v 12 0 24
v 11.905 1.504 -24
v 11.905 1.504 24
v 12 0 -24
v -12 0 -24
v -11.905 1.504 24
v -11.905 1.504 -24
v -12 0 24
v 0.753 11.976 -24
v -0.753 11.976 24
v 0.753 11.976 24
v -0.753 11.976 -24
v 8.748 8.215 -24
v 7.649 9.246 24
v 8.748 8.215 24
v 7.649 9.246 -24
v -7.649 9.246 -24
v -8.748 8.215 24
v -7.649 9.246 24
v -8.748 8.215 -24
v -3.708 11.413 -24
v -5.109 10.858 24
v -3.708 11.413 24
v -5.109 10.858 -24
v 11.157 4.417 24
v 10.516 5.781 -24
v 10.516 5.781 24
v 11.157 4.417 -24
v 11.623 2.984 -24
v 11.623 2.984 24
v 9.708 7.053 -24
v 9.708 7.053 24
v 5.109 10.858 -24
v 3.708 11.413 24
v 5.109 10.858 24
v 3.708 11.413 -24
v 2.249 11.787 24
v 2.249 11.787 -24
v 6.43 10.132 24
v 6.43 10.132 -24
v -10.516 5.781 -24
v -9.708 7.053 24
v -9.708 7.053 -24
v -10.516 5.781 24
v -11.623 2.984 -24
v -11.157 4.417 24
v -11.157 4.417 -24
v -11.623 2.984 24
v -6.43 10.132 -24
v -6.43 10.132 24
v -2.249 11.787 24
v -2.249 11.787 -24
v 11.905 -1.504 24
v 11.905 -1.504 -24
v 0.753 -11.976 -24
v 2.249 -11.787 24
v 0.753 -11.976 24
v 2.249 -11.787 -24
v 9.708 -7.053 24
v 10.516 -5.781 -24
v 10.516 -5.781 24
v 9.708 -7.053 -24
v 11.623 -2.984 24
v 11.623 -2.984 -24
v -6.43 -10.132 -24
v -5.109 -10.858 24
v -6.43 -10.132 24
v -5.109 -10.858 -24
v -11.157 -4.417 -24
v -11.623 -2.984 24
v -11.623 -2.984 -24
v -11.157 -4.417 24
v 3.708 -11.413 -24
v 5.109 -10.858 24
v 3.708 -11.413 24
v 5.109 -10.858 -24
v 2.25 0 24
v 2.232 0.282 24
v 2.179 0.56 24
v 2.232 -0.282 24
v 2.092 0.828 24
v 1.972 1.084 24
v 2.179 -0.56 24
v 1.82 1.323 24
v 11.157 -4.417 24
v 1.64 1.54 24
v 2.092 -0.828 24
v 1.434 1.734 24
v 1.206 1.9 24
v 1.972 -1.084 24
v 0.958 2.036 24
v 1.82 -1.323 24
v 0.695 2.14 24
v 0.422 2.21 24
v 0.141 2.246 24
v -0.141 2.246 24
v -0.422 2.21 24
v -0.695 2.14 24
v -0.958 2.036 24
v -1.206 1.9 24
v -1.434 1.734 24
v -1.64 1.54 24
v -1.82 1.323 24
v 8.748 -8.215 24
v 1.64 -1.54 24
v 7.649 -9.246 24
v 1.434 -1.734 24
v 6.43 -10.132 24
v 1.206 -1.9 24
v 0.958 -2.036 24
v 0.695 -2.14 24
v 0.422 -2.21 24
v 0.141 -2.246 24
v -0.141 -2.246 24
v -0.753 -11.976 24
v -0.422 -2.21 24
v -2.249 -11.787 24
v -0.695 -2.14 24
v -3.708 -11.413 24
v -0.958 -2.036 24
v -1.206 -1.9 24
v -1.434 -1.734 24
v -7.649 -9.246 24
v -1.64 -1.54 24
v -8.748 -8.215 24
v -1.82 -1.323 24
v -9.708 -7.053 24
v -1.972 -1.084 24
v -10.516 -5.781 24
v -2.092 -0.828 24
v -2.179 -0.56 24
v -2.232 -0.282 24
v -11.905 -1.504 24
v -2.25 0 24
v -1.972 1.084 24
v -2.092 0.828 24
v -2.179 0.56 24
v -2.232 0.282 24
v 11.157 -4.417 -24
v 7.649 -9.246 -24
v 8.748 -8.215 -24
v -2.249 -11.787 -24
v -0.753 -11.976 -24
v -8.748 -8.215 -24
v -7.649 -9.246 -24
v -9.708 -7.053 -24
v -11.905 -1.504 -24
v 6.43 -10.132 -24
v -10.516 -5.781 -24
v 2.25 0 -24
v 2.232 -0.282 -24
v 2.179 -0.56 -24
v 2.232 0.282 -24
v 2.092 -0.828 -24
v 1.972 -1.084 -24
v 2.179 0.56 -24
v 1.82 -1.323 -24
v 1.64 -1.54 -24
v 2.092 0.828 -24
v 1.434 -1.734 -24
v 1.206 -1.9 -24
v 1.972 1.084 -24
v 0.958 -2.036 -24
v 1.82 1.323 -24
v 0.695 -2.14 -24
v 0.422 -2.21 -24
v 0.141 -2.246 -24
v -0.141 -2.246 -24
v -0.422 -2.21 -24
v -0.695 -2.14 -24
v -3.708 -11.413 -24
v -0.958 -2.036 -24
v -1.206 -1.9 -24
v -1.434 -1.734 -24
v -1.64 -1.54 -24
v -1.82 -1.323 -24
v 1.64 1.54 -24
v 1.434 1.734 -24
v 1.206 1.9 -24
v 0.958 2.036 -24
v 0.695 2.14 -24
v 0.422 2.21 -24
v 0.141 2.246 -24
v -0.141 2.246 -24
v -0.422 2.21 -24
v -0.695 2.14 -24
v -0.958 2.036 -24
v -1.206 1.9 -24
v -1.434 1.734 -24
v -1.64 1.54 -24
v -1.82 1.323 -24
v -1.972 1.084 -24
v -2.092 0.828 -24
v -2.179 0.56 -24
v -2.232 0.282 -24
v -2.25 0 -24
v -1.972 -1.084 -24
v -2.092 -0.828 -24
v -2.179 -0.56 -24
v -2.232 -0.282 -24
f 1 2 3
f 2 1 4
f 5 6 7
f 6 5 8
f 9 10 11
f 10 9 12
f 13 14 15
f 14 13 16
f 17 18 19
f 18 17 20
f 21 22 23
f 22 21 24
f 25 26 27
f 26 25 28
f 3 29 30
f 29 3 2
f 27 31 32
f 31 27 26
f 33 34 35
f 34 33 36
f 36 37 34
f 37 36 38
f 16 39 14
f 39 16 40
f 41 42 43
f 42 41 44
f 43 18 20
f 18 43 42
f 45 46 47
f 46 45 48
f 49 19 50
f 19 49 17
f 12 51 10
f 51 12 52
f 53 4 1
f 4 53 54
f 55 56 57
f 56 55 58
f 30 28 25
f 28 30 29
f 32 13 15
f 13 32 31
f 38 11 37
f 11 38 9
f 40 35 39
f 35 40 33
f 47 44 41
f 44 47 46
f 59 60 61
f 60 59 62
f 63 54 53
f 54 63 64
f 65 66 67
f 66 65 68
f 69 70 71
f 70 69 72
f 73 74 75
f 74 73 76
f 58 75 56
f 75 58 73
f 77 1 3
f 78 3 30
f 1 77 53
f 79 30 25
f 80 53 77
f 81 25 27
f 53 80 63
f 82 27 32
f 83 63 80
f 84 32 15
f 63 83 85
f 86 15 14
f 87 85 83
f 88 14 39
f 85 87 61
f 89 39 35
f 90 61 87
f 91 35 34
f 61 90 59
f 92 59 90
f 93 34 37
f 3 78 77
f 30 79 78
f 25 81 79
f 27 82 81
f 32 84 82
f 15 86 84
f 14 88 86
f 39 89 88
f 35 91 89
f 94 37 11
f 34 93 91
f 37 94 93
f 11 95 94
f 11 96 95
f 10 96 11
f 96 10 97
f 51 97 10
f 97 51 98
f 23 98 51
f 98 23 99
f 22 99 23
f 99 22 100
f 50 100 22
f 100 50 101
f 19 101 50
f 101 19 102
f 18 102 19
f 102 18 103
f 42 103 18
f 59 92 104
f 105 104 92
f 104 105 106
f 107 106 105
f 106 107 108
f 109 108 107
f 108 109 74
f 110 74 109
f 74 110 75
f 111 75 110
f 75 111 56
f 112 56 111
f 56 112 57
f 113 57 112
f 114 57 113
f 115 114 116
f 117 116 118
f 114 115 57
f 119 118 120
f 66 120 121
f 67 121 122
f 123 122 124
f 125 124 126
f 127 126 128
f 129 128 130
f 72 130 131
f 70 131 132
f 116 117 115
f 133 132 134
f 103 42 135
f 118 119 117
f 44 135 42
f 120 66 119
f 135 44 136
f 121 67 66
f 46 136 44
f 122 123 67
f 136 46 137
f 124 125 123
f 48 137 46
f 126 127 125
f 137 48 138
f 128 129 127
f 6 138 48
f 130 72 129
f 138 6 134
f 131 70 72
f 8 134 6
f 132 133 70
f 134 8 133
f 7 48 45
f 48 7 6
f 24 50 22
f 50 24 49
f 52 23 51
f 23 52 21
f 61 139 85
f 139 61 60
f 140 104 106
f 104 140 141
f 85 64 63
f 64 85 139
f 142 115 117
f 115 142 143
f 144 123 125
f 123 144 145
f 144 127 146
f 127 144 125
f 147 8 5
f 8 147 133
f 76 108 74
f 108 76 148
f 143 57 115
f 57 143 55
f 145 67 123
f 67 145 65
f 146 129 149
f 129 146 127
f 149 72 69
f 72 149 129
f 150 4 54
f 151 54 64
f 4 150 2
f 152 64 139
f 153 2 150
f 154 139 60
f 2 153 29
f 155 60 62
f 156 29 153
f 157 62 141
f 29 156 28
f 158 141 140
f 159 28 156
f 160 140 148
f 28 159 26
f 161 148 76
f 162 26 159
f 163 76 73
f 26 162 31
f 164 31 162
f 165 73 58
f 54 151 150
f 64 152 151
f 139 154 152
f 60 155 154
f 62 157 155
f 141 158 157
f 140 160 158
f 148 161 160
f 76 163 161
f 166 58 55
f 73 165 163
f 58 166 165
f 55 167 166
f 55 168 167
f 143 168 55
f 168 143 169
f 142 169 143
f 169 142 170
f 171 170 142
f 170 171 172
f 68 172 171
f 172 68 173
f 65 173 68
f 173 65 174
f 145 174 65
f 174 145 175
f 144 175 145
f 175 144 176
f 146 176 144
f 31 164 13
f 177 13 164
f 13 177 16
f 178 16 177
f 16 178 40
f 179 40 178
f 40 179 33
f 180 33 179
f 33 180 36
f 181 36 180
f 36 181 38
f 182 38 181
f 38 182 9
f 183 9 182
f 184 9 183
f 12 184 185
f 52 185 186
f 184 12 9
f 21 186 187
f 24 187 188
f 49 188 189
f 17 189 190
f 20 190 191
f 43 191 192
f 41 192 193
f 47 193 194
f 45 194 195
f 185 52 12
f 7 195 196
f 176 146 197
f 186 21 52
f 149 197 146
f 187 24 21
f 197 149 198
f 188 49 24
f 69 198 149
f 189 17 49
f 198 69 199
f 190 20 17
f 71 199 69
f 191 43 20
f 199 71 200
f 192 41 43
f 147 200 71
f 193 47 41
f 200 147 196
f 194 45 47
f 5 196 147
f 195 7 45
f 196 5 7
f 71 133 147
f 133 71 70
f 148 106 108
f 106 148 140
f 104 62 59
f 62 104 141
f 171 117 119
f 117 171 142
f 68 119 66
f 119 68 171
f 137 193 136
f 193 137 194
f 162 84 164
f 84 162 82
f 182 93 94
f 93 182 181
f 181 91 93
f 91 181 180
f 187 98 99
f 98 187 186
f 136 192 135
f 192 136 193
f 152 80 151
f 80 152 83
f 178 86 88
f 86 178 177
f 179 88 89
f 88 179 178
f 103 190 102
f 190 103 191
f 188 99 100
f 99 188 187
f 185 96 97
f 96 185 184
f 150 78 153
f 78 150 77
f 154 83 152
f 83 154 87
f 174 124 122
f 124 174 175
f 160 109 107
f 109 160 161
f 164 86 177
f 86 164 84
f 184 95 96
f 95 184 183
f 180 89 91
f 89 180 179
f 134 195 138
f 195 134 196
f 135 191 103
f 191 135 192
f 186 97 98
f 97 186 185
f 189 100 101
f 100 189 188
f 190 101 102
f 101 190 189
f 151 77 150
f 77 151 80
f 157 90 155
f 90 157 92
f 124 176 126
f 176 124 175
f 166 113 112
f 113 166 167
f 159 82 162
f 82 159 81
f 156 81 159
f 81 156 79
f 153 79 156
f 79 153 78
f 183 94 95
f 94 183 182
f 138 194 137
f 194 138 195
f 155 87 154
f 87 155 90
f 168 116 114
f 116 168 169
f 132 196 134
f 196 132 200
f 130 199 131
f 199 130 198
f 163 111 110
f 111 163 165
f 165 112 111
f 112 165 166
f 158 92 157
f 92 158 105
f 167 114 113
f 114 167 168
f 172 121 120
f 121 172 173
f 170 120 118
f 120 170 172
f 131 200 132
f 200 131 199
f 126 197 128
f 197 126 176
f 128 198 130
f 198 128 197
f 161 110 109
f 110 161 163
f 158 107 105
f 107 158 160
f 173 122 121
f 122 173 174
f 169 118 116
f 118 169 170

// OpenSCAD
$fn = 50;


difference() {
	union() {
		translate(v = [0, 0, -24.0000000000]) {
			cylinder(h = 48, r = 12.0000000000);
		}
	}
	union() {
		translate(v = [0, 0, -100.0000000000]) {
			cylinder(h = 200, r = 2.2500000000);
		}
	}
}
